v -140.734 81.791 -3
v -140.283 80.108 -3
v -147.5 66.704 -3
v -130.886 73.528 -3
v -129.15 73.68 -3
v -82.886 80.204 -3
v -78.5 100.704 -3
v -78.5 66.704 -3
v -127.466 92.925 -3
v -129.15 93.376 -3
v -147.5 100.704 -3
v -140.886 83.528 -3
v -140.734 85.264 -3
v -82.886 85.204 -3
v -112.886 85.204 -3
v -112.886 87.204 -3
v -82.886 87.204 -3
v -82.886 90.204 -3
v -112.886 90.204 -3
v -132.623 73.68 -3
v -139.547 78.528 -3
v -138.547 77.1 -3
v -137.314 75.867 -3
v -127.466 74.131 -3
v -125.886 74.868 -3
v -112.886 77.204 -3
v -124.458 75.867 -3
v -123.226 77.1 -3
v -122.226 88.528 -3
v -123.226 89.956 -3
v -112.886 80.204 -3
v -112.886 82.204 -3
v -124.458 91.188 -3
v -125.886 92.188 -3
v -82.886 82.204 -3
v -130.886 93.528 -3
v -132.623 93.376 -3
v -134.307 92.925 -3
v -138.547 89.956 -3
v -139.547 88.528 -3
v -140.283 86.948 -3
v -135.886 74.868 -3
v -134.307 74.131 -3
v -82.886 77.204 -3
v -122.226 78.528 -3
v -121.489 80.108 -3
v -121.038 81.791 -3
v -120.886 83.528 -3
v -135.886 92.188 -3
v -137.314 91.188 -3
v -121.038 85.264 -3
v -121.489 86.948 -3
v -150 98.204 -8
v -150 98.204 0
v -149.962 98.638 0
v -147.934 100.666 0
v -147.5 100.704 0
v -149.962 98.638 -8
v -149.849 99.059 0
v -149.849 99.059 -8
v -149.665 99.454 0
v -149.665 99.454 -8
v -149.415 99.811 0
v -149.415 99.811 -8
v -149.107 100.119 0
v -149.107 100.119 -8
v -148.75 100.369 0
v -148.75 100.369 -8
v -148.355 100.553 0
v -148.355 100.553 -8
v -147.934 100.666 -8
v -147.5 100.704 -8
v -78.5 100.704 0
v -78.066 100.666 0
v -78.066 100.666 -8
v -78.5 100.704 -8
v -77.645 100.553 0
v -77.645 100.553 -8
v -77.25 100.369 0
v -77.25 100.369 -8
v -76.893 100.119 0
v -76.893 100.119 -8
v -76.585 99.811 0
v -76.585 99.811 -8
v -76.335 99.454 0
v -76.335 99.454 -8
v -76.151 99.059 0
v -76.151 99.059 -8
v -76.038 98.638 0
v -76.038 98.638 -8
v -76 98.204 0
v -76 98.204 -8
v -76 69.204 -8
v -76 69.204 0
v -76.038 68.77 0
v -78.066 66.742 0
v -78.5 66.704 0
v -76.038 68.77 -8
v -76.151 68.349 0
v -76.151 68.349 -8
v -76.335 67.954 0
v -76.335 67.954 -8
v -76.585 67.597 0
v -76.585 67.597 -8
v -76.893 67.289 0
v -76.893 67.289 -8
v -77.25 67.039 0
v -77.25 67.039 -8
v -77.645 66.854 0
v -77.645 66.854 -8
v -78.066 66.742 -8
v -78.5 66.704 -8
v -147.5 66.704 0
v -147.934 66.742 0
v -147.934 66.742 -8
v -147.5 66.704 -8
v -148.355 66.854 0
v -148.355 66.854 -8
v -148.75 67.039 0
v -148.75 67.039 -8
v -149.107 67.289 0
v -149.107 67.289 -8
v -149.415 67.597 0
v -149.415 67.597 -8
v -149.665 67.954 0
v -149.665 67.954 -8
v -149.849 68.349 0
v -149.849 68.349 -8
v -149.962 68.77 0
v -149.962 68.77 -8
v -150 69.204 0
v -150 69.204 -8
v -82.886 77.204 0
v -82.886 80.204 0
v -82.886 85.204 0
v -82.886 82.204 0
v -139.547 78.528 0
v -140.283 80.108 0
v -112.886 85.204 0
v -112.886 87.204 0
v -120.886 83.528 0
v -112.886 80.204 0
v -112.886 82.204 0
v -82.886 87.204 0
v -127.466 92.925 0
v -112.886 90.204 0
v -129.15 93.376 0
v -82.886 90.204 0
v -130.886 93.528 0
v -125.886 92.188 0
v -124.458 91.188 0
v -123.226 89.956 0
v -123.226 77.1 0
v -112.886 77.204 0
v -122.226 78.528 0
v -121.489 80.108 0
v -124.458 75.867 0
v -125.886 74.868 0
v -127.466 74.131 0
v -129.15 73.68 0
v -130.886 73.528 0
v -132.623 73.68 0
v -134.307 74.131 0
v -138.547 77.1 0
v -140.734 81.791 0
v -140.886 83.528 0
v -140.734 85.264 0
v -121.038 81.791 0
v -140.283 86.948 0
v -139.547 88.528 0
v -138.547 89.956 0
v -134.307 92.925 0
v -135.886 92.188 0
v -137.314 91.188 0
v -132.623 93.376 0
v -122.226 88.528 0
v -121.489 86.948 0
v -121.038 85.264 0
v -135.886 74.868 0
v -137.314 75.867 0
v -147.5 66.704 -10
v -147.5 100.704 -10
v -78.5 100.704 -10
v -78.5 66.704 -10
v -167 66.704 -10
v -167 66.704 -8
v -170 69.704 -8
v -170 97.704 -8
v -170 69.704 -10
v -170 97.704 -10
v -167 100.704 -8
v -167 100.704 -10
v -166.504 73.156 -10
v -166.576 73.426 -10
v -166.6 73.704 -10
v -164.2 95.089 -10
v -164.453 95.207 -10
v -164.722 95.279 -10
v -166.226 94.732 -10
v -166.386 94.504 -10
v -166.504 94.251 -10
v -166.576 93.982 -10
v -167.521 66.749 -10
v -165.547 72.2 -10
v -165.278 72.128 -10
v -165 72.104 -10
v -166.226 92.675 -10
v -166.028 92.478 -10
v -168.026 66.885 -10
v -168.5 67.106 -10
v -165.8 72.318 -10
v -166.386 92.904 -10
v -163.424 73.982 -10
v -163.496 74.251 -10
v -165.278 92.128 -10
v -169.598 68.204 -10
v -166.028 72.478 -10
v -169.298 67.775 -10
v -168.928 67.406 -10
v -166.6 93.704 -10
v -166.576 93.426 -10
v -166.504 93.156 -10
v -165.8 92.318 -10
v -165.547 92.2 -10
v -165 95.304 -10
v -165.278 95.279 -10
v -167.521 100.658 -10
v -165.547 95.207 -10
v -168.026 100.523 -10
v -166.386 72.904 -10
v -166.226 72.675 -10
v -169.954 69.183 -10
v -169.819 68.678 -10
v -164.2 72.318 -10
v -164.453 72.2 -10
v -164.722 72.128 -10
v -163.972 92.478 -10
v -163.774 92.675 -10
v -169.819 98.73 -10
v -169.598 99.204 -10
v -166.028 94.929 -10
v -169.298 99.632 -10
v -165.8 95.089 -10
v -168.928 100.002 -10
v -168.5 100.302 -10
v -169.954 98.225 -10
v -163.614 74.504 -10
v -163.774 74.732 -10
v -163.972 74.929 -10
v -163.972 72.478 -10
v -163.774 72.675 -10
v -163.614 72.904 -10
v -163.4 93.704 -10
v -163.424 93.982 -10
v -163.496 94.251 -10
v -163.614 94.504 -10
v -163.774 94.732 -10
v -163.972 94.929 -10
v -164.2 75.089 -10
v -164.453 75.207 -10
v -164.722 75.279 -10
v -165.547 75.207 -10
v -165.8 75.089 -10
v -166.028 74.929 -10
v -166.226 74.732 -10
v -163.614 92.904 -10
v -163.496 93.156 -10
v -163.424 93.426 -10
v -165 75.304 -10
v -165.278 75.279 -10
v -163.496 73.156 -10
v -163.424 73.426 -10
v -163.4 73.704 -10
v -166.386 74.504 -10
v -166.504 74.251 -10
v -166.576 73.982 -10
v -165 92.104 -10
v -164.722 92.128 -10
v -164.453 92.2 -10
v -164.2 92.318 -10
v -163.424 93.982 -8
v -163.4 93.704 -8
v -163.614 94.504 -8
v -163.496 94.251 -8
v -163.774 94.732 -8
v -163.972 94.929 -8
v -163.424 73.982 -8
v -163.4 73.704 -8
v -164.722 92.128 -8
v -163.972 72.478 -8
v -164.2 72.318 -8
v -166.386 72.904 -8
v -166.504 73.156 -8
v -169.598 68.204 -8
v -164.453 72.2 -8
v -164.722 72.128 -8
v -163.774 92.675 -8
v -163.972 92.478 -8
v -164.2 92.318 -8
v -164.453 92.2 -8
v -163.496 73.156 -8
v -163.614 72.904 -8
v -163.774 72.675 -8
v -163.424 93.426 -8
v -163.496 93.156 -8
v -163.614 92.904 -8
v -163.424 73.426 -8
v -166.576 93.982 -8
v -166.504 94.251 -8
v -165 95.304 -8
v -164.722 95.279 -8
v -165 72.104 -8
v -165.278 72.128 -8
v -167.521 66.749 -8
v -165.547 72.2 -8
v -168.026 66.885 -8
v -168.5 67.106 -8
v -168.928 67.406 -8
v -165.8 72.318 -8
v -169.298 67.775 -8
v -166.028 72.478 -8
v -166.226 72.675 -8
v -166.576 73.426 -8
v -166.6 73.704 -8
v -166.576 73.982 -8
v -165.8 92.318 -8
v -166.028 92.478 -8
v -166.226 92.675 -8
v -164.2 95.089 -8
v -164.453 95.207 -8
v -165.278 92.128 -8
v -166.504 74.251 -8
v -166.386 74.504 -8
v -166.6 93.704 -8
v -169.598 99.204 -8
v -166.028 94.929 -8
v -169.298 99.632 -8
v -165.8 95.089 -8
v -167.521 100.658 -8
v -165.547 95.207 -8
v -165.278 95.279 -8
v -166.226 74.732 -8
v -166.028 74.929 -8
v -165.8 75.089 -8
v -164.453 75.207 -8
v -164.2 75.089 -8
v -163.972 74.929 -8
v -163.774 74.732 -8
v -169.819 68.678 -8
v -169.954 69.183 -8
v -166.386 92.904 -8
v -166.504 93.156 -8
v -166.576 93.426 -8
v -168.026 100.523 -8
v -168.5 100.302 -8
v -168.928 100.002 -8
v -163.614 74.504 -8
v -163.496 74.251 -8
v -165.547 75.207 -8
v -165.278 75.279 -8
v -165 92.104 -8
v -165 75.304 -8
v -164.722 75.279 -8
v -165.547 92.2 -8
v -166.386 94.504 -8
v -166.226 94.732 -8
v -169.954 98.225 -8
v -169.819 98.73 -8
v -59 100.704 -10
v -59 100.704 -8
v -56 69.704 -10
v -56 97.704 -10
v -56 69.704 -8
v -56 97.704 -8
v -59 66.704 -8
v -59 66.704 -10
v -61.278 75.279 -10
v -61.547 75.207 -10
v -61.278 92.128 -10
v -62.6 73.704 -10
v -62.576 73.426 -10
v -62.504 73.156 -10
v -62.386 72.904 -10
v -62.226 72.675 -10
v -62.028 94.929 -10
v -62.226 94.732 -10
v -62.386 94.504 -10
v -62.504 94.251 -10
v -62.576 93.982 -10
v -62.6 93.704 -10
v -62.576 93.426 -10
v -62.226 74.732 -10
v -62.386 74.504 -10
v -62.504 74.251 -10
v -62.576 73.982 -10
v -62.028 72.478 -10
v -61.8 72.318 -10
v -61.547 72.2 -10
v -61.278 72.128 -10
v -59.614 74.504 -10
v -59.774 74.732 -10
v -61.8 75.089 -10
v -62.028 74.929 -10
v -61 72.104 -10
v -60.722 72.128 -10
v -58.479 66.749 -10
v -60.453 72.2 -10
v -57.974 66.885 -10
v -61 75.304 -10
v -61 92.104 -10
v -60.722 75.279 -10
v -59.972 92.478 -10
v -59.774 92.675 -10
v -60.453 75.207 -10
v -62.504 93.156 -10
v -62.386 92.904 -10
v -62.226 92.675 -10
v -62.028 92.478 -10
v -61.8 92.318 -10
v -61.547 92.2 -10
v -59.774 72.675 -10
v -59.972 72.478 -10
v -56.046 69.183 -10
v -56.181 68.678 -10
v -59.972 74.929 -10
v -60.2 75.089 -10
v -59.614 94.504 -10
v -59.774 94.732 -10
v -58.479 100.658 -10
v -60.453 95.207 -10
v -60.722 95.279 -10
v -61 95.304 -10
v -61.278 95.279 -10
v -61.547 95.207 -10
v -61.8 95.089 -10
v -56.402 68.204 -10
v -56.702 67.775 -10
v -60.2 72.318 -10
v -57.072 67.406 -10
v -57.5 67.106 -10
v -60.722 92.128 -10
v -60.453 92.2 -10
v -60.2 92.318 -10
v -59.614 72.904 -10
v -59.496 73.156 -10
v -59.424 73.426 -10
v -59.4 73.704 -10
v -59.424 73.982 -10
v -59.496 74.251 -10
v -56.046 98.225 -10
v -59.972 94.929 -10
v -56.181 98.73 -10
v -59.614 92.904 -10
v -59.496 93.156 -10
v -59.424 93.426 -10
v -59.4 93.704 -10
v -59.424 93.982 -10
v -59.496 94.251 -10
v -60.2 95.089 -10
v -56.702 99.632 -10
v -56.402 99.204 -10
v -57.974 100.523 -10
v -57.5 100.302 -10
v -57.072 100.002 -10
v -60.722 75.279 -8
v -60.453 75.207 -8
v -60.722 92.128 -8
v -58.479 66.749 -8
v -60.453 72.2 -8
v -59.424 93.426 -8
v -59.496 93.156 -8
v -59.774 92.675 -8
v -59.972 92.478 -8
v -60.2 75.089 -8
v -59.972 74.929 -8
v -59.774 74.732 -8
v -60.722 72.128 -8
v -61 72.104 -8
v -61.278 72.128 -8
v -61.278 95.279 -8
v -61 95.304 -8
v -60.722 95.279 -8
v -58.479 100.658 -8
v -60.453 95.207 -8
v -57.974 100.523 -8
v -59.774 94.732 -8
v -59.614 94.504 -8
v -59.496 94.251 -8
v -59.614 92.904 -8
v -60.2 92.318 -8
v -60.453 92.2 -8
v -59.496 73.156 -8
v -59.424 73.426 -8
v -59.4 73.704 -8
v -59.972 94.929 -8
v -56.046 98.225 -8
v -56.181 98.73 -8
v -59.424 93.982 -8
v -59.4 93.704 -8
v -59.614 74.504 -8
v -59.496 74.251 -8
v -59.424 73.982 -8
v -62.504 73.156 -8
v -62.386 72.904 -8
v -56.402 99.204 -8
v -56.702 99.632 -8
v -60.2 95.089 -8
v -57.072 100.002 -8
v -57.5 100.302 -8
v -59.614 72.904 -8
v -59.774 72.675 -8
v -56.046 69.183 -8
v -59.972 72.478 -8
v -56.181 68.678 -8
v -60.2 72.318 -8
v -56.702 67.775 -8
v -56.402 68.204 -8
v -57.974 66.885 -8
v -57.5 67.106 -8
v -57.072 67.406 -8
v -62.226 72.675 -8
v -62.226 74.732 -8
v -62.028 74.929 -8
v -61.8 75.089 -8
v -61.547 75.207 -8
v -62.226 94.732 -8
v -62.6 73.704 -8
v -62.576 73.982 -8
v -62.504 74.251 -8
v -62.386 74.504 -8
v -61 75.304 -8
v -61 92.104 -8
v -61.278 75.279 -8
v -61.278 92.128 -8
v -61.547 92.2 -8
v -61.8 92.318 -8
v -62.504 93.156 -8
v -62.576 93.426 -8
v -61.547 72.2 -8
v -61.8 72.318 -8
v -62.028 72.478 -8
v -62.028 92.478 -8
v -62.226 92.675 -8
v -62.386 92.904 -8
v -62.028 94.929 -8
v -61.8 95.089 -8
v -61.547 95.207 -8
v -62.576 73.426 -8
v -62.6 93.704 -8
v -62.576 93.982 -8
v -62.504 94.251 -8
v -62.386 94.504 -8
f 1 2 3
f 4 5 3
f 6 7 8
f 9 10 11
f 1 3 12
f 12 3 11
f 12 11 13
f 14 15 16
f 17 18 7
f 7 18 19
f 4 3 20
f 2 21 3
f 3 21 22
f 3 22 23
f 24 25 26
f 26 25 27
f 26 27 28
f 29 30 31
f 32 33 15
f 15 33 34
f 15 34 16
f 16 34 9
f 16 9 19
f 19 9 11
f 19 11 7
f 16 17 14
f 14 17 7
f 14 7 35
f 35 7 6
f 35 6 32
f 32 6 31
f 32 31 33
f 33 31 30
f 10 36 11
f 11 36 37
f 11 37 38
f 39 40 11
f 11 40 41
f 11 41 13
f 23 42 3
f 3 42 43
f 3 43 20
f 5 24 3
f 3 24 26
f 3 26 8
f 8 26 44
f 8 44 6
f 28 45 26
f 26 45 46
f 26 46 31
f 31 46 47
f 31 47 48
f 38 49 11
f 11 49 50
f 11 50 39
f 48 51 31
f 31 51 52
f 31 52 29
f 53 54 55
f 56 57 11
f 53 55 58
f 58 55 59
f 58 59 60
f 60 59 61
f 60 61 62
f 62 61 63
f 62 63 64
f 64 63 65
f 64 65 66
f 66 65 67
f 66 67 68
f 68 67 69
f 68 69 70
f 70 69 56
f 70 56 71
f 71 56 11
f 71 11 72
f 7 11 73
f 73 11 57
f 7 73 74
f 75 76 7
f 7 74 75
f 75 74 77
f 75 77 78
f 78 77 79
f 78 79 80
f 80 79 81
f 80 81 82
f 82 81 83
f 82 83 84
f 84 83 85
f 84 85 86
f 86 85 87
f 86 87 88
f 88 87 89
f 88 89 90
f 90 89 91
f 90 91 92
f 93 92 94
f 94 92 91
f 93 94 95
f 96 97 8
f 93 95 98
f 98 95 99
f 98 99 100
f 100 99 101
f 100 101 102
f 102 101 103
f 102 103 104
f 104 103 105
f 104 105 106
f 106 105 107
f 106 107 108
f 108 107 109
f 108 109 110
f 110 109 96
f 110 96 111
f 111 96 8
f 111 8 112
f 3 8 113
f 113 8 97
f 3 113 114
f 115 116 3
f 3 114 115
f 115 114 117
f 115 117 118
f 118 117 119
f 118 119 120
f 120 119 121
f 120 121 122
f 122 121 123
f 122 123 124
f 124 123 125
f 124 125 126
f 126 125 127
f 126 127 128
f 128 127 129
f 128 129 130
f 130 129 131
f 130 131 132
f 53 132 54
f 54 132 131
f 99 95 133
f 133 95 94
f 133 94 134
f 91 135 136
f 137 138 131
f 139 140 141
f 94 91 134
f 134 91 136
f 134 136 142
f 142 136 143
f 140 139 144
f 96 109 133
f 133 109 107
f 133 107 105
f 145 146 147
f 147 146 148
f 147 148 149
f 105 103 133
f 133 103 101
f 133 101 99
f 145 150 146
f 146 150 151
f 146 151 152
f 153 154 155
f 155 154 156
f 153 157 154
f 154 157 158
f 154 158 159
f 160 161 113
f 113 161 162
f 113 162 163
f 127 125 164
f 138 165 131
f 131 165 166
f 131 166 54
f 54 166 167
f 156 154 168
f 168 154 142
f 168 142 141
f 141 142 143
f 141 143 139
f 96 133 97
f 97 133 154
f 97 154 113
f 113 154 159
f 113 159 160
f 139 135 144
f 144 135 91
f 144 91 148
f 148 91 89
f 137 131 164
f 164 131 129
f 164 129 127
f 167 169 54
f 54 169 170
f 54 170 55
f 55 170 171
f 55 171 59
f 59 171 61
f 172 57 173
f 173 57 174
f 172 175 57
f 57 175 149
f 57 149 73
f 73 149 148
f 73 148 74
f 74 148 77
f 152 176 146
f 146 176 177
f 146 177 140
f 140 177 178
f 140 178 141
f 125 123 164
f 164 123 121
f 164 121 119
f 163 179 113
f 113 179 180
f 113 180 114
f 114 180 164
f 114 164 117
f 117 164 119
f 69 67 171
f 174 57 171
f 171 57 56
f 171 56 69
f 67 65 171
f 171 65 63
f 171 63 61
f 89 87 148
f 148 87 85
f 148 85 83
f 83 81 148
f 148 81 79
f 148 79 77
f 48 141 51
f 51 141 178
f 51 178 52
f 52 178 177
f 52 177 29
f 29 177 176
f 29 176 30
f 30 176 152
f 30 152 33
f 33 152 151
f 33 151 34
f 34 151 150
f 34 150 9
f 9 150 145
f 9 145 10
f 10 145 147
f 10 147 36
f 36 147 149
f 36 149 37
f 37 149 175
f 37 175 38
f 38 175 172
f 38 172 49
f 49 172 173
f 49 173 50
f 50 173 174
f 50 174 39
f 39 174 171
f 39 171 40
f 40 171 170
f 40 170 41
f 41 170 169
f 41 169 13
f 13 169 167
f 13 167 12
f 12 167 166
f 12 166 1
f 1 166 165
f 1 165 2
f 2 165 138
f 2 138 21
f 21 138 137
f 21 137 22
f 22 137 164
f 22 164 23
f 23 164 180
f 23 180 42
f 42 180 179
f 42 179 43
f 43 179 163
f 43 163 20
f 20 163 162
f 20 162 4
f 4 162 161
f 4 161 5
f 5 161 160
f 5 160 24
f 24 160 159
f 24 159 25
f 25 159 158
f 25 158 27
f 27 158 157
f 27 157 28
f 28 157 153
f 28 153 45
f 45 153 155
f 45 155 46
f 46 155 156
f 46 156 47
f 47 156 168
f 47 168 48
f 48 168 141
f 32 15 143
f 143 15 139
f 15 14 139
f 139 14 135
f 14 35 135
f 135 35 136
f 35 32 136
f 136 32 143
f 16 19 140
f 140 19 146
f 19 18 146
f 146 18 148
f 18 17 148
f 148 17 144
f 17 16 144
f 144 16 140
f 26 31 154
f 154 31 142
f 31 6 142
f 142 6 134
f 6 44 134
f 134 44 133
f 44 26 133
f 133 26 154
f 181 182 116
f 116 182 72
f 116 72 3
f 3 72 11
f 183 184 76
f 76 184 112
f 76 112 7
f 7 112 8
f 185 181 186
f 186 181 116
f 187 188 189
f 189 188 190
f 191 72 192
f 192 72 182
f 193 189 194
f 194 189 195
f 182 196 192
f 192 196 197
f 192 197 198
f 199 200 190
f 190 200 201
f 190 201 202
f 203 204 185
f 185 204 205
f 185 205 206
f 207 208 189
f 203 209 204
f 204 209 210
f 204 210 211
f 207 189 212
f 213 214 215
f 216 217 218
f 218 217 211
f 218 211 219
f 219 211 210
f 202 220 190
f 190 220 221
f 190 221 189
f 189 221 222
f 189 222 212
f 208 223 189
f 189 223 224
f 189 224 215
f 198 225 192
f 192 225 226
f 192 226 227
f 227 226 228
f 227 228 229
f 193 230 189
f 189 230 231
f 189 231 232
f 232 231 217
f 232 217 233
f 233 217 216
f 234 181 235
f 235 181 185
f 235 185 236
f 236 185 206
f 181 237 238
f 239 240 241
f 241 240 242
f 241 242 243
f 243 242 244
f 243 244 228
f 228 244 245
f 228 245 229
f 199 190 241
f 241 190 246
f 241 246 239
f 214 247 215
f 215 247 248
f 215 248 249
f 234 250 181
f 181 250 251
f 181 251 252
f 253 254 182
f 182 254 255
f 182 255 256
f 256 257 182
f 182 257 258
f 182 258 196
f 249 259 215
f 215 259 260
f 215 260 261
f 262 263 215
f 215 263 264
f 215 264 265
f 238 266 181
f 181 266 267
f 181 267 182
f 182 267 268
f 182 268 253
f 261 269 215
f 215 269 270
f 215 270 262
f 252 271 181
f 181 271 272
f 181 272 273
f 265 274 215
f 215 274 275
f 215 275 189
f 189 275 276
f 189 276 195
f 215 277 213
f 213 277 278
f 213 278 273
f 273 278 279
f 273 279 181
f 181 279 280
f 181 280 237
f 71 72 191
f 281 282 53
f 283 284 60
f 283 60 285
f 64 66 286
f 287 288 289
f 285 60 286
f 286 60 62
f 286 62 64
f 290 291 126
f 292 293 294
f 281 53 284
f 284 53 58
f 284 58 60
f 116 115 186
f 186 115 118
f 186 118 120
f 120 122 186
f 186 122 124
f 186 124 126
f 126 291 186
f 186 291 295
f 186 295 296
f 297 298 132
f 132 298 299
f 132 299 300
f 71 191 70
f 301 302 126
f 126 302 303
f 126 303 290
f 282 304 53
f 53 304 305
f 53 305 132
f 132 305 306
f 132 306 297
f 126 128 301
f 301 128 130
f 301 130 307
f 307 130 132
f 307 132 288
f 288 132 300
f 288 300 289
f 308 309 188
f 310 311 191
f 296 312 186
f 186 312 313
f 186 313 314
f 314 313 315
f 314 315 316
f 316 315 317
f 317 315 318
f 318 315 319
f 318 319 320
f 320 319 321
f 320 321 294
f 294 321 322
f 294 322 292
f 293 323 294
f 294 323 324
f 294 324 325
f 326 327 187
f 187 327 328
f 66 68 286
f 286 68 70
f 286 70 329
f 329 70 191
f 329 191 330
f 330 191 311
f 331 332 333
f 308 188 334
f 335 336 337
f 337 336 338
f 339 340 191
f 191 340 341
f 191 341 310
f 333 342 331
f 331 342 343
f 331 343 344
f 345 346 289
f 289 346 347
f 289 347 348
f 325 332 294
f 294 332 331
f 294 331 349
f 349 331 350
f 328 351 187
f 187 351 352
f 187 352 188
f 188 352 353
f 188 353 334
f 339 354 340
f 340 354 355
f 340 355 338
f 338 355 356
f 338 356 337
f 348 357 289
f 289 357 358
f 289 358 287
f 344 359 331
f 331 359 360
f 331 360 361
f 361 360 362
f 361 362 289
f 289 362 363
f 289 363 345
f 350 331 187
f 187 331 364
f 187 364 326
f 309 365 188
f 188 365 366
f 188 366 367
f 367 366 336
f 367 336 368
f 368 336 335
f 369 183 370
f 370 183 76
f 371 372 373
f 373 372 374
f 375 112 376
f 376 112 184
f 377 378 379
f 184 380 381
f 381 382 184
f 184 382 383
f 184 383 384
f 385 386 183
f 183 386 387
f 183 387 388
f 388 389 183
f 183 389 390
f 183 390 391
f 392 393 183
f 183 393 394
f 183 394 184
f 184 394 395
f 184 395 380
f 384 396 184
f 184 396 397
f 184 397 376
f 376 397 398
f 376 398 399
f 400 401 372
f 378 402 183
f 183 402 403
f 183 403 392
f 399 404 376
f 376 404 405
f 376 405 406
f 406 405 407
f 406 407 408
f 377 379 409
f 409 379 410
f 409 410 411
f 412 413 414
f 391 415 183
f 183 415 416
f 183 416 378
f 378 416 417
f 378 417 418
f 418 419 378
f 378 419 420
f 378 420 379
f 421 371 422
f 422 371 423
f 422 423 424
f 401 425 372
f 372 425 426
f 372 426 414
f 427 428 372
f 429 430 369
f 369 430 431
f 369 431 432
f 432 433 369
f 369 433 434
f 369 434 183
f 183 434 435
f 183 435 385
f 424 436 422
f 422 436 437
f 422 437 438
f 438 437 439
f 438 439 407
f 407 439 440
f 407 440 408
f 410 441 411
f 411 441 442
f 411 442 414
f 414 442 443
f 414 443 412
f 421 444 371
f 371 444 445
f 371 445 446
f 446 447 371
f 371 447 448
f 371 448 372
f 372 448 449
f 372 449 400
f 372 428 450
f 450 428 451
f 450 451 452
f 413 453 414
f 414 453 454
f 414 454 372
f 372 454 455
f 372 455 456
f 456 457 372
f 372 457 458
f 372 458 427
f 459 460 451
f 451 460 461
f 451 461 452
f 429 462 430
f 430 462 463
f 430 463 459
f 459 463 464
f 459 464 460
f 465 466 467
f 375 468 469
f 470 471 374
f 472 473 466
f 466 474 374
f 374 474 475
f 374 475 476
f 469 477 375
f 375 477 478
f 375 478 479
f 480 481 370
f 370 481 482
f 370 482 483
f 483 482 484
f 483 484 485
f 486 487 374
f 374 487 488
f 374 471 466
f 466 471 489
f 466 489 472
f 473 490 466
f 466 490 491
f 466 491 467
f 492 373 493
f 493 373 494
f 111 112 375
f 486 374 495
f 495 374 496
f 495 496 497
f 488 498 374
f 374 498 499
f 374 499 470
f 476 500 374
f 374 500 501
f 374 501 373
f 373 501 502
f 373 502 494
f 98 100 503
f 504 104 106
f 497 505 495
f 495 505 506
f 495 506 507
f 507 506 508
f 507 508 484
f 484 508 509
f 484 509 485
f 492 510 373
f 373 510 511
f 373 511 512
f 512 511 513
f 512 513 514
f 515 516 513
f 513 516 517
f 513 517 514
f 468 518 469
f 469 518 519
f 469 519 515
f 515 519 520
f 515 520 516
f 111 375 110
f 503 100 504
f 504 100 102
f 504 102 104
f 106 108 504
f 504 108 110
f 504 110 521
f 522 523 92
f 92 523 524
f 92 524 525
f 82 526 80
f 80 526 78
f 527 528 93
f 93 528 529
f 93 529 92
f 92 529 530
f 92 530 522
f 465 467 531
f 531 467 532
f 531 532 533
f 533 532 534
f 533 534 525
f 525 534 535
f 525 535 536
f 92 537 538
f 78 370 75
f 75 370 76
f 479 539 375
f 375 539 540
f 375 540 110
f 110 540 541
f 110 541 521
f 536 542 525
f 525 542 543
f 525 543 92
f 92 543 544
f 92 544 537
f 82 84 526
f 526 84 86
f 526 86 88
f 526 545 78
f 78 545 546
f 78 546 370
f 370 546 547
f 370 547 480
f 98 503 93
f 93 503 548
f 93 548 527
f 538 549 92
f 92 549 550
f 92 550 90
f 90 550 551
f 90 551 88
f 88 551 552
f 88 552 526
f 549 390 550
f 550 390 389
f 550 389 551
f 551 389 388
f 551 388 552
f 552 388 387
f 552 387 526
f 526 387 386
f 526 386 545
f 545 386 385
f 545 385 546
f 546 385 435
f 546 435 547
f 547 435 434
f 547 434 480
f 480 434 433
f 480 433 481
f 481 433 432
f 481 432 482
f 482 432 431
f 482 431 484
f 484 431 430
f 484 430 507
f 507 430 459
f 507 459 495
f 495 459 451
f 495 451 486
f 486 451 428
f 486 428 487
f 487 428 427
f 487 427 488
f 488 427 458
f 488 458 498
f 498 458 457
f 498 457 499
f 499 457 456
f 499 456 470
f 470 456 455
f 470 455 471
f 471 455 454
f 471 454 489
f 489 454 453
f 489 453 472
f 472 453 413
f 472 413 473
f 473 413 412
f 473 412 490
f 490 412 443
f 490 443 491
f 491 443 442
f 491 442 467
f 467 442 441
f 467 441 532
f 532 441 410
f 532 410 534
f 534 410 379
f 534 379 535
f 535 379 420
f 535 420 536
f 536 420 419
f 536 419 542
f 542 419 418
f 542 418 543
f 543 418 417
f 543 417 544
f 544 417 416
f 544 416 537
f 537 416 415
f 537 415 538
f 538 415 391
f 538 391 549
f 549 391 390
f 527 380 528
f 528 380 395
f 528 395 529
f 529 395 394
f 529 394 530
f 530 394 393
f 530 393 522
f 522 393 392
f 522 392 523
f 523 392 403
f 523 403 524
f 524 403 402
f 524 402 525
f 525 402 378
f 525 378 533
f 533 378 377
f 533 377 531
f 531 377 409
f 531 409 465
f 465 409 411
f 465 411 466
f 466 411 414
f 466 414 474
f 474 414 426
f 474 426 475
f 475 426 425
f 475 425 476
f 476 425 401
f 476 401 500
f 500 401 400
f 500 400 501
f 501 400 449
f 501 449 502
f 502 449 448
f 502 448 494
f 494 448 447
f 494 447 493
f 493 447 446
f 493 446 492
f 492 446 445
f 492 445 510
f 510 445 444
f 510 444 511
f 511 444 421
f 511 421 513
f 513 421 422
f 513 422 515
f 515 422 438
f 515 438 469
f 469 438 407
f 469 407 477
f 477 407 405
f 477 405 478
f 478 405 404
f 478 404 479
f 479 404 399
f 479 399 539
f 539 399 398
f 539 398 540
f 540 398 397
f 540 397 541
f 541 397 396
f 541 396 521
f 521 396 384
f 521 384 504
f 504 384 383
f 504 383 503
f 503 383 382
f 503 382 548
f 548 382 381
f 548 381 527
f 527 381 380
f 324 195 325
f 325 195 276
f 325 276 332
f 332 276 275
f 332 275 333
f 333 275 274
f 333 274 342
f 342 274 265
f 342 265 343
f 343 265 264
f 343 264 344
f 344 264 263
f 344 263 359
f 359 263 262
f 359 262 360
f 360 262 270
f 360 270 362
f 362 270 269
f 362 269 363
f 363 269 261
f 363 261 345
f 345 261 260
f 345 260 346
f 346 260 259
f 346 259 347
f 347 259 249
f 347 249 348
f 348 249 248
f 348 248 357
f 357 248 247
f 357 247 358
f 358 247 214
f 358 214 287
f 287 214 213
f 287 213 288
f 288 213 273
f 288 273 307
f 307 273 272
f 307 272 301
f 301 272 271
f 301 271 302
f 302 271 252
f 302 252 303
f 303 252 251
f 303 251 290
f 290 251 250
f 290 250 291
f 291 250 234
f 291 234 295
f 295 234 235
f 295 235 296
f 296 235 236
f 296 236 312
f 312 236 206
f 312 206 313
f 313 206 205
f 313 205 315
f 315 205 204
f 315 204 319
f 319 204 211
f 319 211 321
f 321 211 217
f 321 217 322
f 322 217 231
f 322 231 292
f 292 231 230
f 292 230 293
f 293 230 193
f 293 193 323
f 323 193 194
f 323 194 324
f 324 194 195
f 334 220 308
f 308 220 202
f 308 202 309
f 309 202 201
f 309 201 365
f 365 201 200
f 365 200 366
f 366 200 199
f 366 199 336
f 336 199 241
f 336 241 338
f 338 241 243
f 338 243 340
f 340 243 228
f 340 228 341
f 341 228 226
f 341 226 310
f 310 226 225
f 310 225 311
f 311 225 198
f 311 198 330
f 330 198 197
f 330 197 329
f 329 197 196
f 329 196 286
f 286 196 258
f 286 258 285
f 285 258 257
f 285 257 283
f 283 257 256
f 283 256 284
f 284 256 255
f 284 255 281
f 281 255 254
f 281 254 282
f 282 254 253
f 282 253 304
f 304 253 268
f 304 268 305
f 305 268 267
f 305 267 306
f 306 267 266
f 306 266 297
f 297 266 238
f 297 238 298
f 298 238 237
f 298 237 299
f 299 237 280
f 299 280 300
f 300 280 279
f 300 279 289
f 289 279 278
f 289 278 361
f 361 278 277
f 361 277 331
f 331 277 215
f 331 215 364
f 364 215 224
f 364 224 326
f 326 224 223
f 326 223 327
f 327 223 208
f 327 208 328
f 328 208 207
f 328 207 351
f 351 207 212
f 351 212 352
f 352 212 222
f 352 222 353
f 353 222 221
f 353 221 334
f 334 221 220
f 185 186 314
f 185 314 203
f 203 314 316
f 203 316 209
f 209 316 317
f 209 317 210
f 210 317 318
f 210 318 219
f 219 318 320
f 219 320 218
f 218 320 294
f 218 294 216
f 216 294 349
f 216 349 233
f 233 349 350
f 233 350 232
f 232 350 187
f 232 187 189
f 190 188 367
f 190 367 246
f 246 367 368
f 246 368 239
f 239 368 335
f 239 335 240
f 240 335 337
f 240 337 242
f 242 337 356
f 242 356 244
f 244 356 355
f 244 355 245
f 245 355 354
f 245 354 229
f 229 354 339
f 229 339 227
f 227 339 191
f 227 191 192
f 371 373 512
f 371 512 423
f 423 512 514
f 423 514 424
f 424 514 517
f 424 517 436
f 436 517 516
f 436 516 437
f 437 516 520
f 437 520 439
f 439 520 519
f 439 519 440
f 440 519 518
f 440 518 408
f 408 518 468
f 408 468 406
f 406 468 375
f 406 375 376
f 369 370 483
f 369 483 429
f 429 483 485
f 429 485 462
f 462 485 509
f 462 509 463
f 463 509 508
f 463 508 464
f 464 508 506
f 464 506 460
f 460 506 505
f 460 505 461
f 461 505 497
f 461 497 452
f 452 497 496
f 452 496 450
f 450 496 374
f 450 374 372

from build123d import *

# Parameters (mm, degrees)
SKETCH1_R           = 10
SKETCH1_W           = 30
SKETCH1_H           = 3
BOSS_EXTRUDE1_DEPTH = 3
BOSS_EXTRUDE3_DEPTH = 5
SKETCH2_W           = 22.5
SKETCH2_H           = 34
BOSS_EXTRUDE2_DEPTH = 2
SKETCH4_R           = 1.6
CUT_EXTRUDE1_DEPTH  = 11
FILLET1_R           = 3


with BuildPart() as part:
    # Sketch1 → Boss-Extrude1 (new body)
    with BuildSketch(Plane.XY):
        with BuildLine():
            Line((-150, 98.203720637), (-150, 69.203720637))
            ThreePointArc((-150, 69.203720637), (-149.267766953, 67.435953684), (-147.5, 66.703720637))
            Line((-147.5, 66.703720637), (-78.5, 66.703720637))
            ThreePointArc((-78.5, 66.703720637), (-76.732233047, 67.435953684), (-76, 69.203720637))
            Line((-76, 69.203720637), (-76, 98.203720637))
            ThreePointArc((-76, 98.203720637), (-76.732233047, 99.97148759), (-78.5, 100.703720637))
            Line((-78.5, 100.703720637), (-147.5, 100.703720637))
            ThreePointArc((-147.5, 100.703720637), (-149.267766953, 99.97148759), (-150, 98.203720637))
        make_face()
        with Locations((-130.886316496, 83.527802162)):
            Circle(SKETCH1_R, mode=Mode.SUBTRACT)
        with Locations((-97.886316496, 83.703720637)):
            Rectangle(SKETCH1_W, SKETCH1_H, mode=Mode.SUBTRACT)
        with Locations((-97.886316496, 88.703720637)):
            Rectangle(SKETCH1_W, SKETCH1_H, mode=Mode.SUBTRACT)
        with Locations((-97.886316496, 78.703720637)):
            Rectangle(SKETCH1_W, SKETCH1_H, mode=Mode.SUBTRACT)
    extrude(amount=-BOSS_EXTRUDE1_DEPTH)

    # Sketch3 → Boss-Extrude3 (add)
    with BuildSketch(Plane(origin=(0, 0, -3), x_dir=(-1, 0, 0), z_dir=(0, 0, -1))):
        with BuildLine():
            Line((150, 98.203720637), (150, 69.203720637))
            ThreePointArc((150, 69.203720637), (149.267766953, 67.435953684), (147.5, 66.703720637))
            Line((147.5, 66.703720637), (147.5, 100.703720637))
            ThreePointArc((147.5, 100.703720637), (149.267766953, 99.97148759), (150, 98.203720637))
        make_face()
        with BuildLine():
            Line((78.5, 100.703720637), (78.5, 66.703720637))
            ThreePointArc((78.5, 66.703720637), (76.732233047, 67.435953684), (76, 69.203720637))
            Line((76, 69.203720637), (76, 98.203720637))
            ThreePointArc((76, 98.203720637), (76.732233047, 99.97148759), (78.5, 100.703720637))
        make_face()
    extrude(amount=BOSS_EXTRUDE3_DEPTH)

    # Sketch2 → Boss-Extrude2 (add)
    with BuildSketch(Plane(origin=(0, 0, -8), x_dir=(-1, 0, 0), z_dir=(0, 0, -1))):
        with Locations((158.75, 83.703720637)):
            Rectangle(SKETCH2_W, SKETCH2_H)
        with Locations((67.25, 83.703720637)):
            Rectangle(SKETCH2_W, SKETCH2_H)
    extrude(amount=BOSS_EXTRUDE2_DEPTH)

    # Sketch4 → Cut-Extrude1 (cut, through all)
    with BuildSketch(Plane(origin=(0, 0, -10), x_dir=(-1, 0, 0), z_dir=(0, 0, -1))):
        with Locations((61, 93.703720637)):
            Circle(SKETCH4_R)
        with Locations((61, 73.703720637)):
            Circle(SKETCH4_R)
        with Locations((165, 73.703720637)):
            Circle(SKETCH4_R)
        with Locations((165, 93.703720637)):
            Circle(SKETCH4_R)
    extrude(amount=-CUT_EXTRUDE1_DEPTH, mode=Mode.SUBTRACT)

    # Fillet1
    fillet1_edges = [part.edges().sort_by_distance(p)[0] for p in [
        (-56, 100.703720637, -9),
        (-56, 66.703720637, -9),
        (-170, 66.703720637, -9),
        (-170, 100.703720637, -9),
    ]]
    fillet(fillet1_edges, radius=FILLET1_R)


solid = part.part
